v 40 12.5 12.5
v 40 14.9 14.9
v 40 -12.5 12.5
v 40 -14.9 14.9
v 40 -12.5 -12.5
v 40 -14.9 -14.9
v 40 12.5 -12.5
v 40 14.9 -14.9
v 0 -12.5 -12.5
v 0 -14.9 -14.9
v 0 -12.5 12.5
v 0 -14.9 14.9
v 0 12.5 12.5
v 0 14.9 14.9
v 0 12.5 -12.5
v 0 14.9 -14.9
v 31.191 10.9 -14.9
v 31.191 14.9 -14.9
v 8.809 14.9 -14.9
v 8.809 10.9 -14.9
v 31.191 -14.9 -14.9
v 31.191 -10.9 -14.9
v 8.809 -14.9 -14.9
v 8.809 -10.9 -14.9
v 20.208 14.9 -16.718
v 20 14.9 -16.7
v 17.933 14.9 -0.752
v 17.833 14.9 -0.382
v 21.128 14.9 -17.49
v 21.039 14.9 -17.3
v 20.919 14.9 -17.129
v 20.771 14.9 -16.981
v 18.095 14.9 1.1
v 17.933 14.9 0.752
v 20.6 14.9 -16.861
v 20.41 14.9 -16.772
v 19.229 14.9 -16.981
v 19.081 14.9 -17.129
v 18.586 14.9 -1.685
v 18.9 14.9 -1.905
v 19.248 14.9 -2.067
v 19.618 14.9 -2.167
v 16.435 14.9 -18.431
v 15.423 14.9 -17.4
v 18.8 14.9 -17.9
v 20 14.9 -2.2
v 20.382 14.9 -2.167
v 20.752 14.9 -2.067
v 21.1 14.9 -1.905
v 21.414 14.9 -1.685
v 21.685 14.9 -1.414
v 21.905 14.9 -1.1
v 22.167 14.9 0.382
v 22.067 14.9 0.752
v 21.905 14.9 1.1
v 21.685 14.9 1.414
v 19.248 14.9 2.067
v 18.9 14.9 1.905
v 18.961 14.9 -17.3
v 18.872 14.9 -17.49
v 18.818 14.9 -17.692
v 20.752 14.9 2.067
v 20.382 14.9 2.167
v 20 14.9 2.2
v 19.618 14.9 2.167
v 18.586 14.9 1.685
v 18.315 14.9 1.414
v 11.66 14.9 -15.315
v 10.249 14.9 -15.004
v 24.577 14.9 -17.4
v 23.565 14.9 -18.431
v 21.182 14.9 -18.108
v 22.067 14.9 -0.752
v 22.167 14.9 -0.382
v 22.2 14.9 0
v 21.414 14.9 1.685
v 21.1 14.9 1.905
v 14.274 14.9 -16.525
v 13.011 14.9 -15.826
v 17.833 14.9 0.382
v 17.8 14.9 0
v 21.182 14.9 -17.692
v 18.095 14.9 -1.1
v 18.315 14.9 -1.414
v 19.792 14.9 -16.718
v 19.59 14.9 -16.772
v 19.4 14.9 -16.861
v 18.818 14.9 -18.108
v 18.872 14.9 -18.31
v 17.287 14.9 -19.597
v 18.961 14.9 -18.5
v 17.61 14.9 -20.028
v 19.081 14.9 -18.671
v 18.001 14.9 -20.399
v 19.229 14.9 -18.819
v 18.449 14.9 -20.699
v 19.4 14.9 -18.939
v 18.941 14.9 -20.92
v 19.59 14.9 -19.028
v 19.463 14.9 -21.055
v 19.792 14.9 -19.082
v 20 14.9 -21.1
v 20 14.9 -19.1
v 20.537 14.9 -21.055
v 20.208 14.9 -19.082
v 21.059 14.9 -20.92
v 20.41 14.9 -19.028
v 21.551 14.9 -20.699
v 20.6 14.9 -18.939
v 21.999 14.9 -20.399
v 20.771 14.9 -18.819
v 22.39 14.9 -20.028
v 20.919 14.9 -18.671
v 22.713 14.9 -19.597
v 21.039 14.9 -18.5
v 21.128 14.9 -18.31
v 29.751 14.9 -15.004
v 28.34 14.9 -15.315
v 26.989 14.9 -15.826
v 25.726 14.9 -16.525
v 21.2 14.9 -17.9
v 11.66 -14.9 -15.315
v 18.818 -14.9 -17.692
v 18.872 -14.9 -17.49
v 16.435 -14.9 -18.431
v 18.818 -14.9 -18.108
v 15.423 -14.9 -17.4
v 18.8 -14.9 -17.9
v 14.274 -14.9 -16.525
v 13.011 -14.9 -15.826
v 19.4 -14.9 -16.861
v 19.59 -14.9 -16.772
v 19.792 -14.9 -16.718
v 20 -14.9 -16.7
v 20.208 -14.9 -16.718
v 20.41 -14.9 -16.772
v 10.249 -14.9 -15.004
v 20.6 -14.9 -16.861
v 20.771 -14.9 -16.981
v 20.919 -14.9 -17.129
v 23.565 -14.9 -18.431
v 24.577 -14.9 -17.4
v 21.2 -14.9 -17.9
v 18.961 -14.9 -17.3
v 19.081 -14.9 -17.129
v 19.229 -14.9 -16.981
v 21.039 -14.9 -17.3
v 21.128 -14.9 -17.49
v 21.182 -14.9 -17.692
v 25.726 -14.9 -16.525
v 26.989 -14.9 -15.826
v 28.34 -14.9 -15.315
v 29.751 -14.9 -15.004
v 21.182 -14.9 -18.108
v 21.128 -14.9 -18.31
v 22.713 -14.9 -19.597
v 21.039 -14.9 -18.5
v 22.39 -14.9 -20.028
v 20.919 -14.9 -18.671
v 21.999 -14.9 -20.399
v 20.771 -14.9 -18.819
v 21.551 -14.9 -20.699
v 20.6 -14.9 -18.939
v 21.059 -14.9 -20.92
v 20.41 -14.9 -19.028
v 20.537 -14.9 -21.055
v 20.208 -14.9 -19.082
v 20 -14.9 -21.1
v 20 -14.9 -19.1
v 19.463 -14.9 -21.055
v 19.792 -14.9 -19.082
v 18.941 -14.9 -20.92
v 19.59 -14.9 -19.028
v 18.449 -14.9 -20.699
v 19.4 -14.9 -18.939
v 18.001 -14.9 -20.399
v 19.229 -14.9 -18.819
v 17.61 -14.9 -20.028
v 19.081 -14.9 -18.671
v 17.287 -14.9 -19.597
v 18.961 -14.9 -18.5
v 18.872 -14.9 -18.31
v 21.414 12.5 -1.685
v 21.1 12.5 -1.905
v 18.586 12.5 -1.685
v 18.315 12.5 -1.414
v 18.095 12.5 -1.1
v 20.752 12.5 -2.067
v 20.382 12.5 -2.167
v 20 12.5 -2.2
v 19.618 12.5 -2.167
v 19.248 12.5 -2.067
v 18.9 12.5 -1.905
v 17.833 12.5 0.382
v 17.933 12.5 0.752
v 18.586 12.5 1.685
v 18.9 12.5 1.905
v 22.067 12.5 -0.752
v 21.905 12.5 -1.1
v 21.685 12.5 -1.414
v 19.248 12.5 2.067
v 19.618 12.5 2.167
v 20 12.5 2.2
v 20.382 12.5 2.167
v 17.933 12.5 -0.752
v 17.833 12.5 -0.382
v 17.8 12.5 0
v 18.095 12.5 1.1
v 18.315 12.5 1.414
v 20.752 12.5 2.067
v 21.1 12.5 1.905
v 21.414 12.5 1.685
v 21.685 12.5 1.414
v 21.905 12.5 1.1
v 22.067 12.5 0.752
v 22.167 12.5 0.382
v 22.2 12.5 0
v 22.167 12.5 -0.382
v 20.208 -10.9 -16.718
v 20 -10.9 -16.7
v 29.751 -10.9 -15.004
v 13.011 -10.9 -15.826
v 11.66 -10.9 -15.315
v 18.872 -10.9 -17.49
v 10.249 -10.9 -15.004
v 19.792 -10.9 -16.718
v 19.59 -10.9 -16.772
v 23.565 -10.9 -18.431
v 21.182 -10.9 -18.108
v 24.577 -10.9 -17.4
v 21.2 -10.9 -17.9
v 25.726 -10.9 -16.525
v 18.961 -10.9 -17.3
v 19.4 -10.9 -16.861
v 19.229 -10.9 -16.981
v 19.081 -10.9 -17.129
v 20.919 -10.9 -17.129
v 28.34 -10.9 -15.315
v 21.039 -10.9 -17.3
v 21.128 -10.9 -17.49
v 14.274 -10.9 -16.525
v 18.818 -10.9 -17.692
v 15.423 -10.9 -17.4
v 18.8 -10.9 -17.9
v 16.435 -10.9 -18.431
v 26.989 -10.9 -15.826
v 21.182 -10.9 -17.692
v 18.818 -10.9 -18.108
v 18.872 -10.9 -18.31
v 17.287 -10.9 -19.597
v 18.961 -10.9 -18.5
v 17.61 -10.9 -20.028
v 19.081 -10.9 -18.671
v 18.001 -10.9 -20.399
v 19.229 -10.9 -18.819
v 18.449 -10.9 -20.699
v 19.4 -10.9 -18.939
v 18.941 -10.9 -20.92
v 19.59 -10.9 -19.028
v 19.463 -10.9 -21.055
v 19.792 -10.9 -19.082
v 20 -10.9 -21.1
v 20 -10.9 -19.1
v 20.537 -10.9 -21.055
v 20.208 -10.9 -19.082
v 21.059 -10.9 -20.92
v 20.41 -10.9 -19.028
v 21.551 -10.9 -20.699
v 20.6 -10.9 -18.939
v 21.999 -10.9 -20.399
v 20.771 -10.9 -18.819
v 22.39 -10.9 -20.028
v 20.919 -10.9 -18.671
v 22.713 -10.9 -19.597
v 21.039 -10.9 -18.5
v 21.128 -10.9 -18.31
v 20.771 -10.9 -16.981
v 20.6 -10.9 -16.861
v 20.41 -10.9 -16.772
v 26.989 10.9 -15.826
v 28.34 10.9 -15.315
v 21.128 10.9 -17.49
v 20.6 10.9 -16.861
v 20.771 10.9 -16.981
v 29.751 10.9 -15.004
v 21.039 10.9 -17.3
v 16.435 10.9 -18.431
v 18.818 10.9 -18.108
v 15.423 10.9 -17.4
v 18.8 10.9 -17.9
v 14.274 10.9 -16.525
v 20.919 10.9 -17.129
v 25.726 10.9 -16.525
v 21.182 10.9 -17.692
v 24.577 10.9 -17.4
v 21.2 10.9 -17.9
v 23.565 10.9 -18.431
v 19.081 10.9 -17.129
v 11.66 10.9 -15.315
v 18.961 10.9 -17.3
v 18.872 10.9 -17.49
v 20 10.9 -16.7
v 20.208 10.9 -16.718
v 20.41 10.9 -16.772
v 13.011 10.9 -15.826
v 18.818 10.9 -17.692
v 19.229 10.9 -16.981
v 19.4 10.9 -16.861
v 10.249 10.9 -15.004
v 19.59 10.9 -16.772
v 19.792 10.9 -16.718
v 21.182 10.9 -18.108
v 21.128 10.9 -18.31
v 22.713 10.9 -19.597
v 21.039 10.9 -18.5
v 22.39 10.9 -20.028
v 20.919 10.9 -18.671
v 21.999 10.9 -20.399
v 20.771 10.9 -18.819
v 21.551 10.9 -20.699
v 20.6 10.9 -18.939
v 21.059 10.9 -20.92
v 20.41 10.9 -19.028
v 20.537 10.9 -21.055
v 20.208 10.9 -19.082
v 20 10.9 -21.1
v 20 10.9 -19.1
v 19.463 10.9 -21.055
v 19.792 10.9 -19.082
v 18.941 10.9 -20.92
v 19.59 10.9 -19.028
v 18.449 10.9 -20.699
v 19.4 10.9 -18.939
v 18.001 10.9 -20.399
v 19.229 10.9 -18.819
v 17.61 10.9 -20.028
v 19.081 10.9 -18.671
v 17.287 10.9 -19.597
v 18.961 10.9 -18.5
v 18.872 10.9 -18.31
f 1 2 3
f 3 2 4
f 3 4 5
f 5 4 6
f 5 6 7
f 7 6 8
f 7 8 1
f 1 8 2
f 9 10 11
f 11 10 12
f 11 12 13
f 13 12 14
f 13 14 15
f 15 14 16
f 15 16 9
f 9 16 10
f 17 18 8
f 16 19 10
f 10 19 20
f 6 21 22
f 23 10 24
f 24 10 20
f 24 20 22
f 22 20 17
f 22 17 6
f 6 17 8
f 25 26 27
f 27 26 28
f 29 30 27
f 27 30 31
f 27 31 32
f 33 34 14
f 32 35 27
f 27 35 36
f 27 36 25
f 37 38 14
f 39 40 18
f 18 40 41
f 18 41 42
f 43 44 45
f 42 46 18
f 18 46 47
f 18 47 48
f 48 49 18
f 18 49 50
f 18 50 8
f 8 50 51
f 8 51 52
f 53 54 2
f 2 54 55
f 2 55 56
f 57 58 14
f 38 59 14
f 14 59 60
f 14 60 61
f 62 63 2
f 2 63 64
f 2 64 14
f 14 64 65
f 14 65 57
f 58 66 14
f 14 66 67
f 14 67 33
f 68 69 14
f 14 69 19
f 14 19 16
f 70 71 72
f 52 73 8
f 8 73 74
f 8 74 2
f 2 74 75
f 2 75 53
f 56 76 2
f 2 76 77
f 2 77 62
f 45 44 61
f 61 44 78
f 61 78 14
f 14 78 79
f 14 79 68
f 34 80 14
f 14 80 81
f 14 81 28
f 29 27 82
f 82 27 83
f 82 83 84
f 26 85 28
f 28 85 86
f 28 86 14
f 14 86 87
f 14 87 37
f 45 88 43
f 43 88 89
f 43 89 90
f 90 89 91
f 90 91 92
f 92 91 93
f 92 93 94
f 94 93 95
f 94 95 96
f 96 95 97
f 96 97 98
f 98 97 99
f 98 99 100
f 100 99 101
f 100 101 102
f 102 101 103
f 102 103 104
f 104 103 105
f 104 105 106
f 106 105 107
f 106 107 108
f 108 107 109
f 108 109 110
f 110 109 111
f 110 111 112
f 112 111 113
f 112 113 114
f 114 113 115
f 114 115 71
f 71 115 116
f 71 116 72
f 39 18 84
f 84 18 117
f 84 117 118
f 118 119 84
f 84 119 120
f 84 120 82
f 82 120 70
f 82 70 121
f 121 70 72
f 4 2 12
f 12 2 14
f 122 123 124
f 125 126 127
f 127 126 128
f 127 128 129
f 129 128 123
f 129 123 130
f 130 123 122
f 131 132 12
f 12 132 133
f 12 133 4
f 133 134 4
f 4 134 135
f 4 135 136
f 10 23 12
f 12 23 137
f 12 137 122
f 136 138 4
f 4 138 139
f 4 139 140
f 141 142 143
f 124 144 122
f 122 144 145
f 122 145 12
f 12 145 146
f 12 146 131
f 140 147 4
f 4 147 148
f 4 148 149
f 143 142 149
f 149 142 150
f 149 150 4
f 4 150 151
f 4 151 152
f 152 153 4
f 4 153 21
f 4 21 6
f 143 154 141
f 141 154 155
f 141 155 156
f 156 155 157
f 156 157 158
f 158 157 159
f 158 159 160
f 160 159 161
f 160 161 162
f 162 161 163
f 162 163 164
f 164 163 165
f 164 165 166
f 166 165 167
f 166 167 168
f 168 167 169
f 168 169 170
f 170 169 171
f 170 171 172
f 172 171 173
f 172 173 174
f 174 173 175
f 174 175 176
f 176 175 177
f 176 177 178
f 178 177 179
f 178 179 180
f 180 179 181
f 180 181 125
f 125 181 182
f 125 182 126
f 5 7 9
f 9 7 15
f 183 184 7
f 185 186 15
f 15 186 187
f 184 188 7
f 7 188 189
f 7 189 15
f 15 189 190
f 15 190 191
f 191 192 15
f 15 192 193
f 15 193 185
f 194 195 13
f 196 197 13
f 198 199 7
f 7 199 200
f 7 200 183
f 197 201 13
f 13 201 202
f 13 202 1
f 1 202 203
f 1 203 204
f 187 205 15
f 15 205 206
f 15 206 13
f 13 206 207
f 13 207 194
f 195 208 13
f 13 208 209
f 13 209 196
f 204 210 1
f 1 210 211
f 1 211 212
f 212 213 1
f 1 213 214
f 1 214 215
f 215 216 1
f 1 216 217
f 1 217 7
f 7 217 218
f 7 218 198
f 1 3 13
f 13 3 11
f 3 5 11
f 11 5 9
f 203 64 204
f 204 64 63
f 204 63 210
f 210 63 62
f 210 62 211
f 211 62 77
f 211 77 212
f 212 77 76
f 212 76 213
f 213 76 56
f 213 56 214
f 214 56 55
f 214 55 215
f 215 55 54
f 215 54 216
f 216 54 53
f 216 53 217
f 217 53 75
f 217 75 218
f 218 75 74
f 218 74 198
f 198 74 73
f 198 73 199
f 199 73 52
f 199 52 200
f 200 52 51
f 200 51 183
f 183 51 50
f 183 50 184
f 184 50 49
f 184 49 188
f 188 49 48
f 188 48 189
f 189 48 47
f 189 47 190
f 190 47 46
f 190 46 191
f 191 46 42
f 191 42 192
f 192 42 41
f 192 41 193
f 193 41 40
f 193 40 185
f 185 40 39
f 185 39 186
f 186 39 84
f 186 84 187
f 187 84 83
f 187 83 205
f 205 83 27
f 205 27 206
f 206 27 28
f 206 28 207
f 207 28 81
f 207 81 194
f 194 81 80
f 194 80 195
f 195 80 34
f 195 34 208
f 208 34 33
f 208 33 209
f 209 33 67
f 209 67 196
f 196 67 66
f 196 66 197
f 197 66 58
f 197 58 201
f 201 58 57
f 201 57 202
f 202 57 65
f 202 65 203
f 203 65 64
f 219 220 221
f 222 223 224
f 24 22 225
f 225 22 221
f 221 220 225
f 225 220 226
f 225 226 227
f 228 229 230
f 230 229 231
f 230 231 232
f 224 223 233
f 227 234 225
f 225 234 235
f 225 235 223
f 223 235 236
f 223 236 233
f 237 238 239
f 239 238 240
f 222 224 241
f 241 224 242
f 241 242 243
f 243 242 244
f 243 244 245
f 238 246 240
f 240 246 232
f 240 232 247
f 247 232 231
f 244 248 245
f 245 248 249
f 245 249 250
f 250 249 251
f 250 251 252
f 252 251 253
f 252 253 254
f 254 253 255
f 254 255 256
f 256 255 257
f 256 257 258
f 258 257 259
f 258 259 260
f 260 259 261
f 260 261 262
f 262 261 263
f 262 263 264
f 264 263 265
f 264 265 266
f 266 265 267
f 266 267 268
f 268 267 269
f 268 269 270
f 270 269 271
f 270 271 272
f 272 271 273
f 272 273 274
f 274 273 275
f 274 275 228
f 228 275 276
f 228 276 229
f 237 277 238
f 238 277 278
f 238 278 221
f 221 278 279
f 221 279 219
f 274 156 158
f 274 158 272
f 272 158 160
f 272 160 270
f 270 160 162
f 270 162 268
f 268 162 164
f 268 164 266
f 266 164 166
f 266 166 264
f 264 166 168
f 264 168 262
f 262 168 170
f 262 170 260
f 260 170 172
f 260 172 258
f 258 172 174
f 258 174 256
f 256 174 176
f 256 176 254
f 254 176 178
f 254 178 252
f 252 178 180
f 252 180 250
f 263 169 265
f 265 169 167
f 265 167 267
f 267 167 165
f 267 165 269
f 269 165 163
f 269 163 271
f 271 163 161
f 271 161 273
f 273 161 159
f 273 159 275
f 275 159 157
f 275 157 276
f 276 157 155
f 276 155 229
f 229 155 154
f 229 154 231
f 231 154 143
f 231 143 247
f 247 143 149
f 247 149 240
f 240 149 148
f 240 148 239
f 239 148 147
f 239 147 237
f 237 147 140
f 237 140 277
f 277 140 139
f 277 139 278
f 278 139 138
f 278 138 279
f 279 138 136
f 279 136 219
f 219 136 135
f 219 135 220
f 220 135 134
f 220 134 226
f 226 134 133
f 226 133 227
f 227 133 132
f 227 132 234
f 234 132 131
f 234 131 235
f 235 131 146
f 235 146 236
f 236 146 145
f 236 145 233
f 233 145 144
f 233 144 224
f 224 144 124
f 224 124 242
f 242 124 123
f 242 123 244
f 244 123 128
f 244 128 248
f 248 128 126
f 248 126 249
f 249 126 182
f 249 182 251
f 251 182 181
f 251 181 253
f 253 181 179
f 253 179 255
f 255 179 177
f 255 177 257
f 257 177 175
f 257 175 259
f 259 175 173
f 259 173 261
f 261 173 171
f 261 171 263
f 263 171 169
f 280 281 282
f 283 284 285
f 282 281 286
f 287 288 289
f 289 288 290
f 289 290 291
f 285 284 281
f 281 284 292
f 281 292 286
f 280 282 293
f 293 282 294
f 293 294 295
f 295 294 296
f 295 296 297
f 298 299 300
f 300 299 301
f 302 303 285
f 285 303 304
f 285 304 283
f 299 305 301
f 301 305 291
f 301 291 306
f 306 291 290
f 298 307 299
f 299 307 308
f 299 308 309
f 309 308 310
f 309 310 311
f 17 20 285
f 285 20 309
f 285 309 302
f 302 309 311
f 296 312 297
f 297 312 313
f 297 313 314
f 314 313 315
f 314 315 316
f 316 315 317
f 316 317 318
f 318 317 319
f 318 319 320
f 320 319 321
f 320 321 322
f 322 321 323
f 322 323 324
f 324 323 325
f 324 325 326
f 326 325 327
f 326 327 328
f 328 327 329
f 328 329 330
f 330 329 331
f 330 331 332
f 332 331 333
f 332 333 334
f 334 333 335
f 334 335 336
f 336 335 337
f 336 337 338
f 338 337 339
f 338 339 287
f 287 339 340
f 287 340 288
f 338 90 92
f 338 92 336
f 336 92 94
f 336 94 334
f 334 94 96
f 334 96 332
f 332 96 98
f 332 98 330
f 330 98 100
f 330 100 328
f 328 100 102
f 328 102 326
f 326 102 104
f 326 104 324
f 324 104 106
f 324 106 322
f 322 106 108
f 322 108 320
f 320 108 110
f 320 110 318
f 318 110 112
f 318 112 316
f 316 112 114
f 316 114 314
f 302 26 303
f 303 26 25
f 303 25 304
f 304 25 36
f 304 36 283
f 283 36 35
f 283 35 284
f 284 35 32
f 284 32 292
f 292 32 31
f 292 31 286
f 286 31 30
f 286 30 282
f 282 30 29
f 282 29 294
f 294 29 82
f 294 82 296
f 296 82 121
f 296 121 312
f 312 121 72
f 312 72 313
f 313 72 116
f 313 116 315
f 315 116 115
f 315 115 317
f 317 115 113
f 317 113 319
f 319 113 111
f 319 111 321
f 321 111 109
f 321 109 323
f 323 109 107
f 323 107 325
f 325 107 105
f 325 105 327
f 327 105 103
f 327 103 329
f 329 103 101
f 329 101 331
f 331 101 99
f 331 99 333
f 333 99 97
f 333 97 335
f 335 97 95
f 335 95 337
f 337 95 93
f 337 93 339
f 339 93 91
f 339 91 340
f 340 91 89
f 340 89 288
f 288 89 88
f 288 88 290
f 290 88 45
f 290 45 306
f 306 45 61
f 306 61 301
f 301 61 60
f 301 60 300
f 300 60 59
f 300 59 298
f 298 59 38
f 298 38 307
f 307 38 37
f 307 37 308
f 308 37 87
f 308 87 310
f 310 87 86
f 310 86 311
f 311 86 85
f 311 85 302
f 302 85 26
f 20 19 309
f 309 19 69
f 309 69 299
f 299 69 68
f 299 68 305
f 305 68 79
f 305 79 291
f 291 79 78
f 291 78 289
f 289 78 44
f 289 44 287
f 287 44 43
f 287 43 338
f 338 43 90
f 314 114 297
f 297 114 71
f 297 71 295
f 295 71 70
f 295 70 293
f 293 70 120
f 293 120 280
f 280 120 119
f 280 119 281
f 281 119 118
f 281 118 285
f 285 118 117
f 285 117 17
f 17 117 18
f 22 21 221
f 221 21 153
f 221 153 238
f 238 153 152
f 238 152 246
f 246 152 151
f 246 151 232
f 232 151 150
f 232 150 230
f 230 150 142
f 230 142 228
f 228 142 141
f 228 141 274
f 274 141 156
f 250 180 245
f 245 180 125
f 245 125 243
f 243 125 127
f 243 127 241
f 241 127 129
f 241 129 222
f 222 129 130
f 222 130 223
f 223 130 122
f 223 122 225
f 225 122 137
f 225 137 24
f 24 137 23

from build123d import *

# Parameters (mm, degrees)
SKETCH_1_W          = 29.8
SKETCH_1_H          = 29.8
SKETCH_1_W_2        = 25
SKETCH_1_H_2        = 25
EXTRUDE_1_DEPTH     = 40
CUT_EXTRUDE_1_REACH = 54.058
SKETCH_4_R          = 2.2
SKETCH_7_R          = 3.2
SKETCH_7_R_2        = 1.2
EXTRUDE_3_DEPTH     = 4
EXTRUDE_START       = -4
SKETCH_8_R          = 3.2
SKETCH_8_R_2        = 1.2
EXTRUDE_4_DEPTH     = 4
FILLET_2_R          = 10


with BuildPart() as part:
    # Эскиз1 → Вытянуть-Тонкостенный1 (new body)
    with BuildSketch(Plane(origin=(0, 0, 0), x_dir=(0, 0, -1), z_dir=(1, 0, 0))):
        Rectangle(SKETCH_1_W, SKETCH_1_H)
        Rectangle(SKETCH_1_W_2, SKETCH_1_H_2, mode=Mode.SUBTRACT)
    extrude(amount=EXTRUDE_1_DEPTH)

    # Эскиз4 → Вырез-Вытянуть1 (cut, up to next)
    with BuildSketch(Plane(origin=(0, 14.9, 0), x_dir=(1, 0, 0), z_dir=(0, 1, 0)), mode=Mode.PRIVATE) as cut_extrude_1_sk1:
        with Locations(Location((20, 0, 0), (0, 0, 270))):
            Circle(SKETCH_4_R)
    cut_extrude_1_tool1 = extrude(cut_extrude_1_sk1.sketch, amount=-CUT_EXTRUDE_1_REACH, mode=Mode.PRIVATE) & part.part
    add(cut_extrude_1_tool1.solids().sort_by_distance((20, 14.9, 0))[0], mode=Mode.SUBTRACT)

    # Эскиз7 → Бобышка-Вытянуть3 (add)
    with BuildSketch(Plane.XZ.offset(14.9)):
        with Locations((20, -17.9)):
            Circle(SKETCH_7_R)
        with Locations(Location((20, -17.9, 0), (0, 0, 270))):
            Circle(SKETCH_7_R_2, mode=Mode.SUBTRACT)
    extrude(amount=-EXTRUDE_3_DEPTH)

    # Эскиз8 → Бобышка-Вытянуть4 (add)
    with BuildSketch(Plane(origin=(0, 14.9, 0), x_dir=(1, 0, 0), z_dir=(0, 1, 0)).offset(EXTRUDE_START)):
        with Locations((20, 17.9)):
            Circle(SKETCH_8_R)
        with Locations(Location((20, 17.9, 0), (0, 0, 90))):
            Circle(SKETCH_8_R_2, mode=Mode.SUBTRACT)
    extrude(amount=EXTRUDE_4_DEPTH)

    # Скругление2
    fillet_2_edges = [part.edges().sort_by_distance(p)[0] for p in [
        (18.886447127, -12.9, -14.9),
        (21.113552873, -12.9, -14.9),
        (21.113552873, 12.9, -14.9),
        (18.886447127, 12.9, -14.9),
    ]]
    fillet(fillet_2_edges, radius=FILLET_2_R)


solid = part.part
